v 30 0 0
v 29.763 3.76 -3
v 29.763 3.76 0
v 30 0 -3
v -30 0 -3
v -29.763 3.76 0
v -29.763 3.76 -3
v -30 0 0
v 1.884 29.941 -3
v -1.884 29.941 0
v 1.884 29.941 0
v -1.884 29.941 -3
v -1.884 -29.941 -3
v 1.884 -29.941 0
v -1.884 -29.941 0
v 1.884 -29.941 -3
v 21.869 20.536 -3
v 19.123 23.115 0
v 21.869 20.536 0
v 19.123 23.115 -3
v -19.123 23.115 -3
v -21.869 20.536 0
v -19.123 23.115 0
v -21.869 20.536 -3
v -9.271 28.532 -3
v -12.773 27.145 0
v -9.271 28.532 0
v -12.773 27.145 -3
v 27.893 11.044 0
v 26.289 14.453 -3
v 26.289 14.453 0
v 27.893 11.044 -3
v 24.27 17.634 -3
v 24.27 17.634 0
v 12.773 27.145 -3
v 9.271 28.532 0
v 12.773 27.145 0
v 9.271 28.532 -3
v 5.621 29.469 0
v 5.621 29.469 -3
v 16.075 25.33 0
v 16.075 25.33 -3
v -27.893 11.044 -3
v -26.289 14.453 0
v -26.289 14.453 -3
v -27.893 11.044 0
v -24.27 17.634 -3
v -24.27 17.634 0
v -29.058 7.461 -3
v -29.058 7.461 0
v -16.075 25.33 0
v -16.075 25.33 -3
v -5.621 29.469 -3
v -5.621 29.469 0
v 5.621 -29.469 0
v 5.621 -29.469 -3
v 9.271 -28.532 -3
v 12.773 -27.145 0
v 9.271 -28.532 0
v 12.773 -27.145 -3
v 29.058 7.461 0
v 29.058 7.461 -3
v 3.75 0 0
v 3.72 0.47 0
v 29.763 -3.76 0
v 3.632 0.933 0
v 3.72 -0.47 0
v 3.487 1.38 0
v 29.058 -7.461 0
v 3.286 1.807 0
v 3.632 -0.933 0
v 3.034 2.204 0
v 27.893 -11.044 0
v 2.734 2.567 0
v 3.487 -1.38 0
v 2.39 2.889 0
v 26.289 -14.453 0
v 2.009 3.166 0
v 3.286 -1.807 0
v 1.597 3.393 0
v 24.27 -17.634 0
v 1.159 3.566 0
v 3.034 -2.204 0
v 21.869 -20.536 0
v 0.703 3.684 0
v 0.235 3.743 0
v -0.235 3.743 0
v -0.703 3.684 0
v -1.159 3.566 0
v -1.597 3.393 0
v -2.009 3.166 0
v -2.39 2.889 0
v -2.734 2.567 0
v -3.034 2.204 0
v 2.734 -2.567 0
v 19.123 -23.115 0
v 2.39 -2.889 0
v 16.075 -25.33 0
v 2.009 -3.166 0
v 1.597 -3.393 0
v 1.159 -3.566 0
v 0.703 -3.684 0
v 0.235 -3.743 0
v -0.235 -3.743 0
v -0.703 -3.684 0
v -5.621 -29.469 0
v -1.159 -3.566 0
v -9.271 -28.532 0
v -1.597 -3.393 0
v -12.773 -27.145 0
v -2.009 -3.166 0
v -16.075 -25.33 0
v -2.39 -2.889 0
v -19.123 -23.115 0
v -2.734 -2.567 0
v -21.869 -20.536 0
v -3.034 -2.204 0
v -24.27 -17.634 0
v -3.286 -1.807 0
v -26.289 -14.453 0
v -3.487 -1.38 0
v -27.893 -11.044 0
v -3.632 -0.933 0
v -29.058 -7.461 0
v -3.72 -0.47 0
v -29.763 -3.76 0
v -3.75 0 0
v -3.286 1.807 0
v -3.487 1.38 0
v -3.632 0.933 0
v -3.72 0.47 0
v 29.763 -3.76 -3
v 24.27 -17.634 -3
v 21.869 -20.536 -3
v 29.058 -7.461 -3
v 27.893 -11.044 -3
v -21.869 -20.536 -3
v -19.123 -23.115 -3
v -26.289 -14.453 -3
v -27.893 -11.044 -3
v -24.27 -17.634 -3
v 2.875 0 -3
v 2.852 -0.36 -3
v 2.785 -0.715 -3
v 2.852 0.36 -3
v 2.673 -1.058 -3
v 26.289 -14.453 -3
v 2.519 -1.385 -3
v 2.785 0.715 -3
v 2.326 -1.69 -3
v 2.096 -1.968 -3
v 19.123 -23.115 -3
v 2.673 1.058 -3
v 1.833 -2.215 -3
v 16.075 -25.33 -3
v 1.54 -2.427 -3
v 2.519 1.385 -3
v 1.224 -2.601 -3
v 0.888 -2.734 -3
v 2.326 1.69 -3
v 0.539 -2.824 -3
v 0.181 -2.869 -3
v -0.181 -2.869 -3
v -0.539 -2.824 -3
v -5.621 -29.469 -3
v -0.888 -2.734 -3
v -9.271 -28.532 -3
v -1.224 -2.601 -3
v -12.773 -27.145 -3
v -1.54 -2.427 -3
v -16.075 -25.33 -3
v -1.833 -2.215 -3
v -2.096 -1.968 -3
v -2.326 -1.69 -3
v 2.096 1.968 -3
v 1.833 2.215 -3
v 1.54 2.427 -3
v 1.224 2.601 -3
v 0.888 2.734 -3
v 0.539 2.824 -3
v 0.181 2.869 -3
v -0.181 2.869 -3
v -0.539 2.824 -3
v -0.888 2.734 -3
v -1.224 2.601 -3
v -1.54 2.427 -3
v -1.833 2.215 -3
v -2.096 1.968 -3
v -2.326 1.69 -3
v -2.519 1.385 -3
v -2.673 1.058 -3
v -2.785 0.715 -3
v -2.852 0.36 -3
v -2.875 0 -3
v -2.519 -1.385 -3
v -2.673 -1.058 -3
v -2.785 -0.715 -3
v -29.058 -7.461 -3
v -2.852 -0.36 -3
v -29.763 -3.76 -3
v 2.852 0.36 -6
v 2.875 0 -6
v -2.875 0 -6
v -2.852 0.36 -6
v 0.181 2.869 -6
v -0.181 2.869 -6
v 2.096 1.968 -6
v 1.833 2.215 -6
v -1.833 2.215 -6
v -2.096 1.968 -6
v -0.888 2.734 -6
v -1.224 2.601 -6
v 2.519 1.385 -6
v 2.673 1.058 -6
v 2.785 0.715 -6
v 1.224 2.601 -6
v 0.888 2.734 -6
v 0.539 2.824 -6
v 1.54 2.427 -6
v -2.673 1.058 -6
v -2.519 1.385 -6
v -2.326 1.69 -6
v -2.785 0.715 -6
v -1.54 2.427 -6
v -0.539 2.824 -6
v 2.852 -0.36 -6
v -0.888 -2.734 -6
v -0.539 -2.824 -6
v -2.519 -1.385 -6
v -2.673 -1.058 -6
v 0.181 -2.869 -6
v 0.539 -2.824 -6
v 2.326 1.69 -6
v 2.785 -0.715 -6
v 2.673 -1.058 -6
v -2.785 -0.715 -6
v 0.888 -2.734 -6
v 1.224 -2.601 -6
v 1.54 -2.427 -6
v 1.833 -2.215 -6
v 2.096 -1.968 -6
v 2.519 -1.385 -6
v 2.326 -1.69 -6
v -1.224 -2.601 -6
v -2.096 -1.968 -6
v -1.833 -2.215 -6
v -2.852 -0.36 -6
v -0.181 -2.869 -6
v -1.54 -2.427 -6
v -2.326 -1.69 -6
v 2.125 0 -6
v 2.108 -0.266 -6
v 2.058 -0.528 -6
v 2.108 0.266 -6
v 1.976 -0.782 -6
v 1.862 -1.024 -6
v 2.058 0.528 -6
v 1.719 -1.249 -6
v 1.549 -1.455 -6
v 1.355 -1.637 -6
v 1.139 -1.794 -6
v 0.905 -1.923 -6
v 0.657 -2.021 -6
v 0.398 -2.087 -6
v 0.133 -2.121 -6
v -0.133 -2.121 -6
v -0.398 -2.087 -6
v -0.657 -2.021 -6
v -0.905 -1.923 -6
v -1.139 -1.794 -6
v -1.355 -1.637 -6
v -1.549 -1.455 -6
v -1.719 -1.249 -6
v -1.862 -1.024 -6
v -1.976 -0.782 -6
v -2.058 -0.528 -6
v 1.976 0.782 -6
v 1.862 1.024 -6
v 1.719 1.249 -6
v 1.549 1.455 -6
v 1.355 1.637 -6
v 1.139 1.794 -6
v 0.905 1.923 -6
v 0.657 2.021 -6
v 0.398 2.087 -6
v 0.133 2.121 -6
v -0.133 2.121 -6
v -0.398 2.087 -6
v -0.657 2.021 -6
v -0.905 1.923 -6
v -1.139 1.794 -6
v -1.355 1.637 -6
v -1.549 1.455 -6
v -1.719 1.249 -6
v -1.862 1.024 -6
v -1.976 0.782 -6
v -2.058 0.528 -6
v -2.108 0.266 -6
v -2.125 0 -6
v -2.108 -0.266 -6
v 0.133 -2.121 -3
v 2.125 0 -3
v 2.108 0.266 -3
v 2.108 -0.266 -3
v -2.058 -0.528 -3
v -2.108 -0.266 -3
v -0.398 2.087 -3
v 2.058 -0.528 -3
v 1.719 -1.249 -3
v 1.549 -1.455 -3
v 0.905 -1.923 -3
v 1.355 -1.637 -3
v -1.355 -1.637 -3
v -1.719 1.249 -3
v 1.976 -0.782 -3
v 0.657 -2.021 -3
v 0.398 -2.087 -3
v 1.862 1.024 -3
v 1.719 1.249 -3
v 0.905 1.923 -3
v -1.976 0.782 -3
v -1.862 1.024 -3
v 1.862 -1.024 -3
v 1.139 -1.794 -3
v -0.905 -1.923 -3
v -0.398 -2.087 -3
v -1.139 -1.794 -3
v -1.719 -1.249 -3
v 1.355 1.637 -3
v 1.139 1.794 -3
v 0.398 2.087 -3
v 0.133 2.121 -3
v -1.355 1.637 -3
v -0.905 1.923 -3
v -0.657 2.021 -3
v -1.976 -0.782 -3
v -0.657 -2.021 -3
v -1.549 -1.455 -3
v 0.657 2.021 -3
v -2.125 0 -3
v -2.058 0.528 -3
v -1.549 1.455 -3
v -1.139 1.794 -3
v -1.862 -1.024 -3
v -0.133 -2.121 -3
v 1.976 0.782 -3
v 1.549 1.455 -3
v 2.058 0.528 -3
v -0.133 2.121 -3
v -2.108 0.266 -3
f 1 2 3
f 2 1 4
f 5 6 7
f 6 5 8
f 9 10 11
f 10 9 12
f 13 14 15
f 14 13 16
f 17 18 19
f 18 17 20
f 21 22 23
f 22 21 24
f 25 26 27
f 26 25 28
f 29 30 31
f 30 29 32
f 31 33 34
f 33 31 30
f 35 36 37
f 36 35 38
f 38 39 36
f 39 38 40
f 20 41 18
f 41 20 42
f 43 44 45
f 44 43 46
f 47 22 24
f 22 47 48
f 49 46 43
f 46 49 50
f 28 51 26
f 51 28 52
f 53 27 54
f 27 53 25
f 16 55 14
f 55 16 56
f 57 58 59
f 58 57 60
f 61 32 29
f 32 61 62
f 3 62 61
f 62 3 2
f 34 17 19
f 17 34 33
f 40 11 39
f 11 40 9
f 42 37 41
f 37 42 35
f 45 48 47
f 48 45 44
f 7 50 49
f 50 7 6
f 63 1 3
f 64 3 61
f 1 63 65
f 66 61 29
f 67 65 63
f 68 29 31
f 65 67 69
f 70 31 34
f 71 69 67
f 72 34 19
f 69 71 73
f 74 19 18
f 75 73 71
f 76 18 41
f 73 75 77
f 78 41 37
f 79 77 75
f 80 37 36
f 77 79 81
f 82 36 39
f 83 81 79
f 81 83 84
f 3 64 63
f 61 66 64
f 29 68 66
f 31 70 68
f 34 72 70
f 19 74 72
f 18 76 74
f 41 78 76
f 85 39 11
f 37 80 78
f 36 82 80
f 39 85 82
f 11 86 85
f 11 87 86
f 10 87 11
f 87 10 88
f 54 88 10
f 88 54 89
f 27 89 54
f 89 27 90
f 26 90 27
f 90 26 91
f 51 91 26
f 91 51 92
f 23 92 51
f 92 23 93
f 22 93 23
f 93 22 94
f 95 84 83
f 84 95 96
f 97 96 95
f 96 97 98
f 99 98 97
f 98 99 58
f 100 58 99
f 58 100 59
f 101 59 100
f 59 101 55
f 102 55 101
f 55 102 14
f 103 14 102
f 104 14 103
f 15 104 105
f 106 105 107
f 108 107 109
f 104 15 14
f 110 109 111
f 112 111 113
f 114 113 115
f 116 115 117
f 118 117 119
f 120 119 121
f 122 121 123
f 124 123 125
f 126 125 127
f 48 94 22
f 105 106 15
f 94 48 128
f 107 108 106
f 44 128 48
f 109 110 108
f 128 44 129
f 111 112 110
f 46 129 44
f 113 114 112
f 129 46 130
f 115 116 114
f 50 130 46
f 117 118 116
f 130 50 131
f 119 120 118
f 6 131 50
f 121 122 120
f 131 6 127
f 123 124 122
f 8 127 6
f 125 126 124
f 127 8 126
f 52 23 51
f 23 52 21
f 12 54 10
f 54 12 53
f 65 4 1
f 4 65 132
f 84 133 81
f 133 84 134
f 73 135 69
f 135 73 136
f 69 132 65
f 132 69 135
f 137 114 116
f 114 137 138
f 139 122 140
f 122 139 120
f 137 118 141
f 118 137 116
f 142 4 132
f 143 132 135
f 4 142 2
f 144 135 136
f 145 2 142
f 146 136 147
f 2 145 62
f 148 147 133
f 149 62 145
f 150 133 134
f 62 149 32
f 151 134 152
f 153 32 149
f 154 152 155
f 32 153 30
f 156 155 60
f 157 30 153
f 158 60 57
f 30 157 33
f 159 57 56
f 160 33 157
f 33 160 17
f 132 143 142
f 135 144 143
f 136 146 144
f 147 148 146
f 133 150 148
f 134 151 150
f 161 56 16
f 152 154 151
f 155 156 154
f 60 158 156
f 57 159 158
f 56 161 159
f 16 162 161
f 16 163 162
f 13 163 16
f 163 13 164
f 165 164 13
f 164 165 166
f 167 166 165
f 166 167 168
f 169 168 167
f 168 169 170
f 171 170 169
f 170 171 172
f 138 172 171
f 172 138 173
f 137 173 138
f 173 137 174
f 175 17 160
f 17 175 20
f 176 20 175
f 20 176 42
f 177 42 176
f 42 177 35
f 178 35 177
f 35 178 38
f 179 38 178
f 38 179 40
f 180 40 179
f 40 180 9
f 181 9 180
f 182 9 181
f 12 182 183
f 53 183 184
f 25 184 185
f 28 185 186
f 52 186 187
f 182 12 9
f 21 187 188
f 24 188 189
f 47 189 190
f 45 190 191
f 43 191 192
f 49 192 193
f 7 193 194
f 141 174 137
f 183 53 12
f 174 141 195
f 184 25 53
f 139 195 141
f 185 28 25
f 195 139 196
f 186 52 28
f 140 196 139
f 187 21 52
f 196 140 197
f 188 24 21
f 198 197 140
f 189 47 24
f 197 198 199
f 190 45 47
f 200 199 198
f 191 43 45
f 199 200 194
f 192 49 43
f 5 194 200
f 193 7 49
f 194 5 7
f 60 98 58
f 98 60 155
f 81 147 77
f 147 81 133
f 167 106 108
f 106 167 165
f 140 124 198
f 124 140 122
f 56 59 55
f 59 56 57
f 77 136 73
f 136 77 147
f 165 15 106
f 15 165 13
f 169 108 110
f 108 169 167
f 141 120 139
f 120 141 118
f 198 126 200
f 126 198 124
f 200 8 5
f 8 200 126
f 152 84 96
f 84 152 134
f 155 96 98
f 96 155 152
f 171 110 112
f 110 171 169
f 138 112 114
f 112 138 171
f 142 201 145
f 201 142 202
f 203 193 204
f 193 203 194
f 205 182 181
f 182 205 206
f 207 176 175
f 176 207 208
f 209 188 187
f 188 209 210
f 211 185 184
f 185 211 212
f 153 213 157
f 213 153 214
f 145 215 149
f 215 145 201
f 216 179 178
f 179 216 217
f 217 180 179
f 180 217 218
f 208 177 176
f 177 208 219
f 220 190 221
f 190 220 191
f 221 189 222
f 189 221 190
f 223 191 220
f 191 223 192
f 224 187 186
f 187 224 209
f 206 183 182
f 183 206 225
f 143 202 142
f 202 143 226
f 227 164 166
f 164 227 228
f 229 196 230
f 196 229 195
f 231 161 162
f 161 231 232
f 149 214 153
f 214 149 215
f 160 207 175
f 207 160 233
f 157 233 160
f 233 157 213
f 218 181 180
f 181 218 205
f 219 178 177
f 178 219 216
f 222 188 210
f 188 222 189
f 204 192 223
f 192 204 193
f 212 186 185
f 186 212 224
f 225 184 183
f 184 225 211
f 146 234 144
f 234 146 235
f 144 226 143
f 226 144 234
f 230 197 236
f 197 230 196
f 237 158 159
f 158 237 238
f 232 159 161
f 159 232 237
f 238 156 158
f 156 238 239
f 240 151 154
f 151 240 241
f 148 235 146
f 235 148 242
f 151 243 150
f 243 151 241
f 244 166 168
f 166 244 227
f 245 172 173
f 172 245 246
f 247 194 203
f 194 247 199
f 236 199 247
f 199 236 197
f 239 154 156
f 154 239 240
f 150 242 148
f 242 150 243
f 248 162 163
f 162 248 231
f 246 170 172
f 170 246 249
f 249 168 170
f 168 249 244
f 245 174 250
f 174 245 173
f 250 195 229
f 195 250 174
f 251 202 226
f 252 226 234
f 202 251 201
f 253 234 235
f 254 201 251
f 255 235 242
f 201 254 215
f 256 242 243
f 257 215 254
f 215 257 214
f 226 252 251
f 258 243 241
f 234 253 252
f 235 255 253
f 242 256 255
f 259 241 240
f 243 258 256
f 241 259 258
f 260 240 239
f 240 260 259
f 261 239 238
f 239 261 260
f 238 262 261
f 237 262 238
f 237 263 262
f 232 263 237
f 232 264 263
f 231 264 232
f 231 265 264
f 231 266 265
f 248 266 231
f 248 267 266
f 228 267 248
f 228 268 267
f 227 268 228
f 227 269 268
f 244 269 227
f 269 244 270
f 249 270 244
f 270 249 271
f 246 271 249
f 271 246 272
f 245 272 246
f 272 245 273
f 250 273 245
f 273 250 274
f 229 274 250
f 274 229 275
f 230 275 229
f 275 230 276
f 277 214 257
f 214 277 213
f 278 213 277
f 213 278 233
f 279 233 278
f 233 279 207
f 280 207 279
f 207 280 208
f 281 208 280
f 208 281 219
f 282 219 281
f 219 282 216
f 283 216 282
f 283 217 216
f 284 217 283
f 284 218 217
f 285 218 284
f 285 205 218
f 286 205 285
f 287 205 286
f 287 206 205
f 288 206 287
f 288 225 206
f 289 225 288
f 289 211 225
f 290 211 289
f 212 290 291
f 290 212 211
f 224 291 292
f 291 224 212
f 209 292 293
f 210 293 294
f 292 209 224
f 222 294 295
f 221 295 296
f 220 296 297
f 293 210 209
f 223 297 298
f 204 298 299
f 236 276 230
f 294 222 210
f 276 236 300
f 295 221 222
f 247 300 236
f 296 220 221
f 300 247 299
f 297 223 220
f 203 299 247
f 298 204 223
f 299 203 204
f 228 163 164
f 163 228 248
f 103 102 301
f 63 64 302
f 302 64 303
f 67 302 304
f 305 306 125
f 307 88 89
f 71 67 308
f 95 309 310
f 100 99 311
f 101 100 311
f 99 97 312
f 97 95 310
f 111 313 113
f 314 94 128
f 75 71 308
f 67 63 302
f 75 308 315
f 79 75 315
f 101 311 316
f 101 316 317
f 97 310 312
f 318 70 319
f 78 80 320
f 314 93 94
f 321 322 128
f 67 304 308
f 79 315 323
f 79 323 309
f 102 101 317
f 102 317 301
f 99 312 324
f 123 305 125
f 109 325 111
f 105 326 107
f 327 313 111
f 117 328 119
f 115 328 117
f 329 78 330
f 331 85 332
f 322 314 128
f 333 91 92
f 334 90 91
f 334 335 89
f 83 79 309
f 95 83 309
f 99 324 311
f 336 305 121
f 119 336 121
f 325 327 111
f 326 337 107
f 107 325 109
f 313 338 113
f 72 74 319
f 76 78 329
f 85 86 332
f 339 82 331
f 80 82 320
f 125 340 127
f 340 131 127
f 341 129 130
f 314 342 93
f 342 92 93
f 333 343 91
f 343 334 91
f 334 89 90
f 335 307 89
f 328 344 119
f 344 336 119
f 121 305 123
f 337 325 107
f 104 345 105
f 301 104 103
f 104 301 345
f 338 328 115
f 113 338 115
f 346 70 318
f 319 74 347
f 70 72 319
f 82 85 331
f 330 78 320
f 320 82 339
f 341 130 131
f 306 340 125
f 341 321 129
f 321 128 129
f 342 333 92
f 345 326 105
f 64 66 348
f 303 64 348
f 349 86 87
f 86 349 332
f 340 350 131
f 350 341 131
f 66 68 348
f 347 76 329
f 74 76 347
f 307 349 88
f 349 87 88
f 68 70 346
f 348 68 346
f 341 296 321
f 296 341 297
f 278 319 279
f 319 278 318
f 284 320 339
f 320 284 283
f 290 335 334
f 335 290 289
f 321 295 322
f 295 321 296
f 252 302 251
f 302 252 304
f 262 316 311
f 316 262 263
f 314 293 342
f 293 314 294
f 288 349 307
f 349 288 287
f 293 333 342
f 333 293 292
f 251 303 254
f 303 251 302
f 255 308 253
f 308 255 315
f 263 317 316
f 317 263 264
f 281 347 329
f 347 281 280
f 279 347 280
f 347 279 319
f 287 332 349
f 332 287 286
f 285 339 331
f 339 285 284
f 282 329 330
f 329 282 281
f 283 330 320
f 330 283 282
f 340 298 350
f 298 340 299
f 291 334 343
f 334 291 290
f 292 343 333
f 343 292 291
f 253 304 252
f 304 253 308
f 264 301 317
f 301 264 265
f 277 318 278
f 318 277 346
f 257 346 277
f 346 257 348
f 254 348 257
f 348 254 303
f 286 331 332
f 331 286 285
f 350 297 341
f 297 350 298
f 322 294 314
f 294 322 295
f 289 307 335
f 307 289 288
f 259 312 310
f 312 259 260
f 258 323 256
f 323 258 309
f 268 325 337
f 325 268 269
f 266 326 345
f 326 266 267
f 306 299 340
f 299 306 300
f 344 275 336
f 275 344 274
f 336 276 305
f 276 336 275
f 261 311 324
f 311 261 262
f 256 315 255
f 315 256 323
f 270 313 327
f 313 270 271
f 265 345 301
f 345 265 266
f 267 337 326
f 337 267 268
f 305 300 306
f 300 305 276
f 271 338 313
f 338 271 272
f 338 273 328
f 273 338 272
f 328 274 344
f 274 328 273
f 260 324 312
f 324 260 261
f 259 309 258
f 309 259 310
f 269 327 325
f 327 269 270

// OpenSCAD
$fn = 50;


difference() {
	union() {
		translate(v = [0, 0, -3.0000000000]) {
			cylinder(h = 3, r = 30.0000000000);
		}
		translate(v = [0, 0, -6.0000000000]) {
			cylinder(h = 6, r = 2.8750000000);
		}
	}
	union() {
		translate(v = [0, 0, 0]) {
			rotate(a = [0, 0, 0]) {
				difference() {
					union() {
						translate(v = [0, 0, -6.0000000000]) {
							cylinder(h = 6, r = 2.0000000000);
						}
						translate(v = [0, 0, -3]) {
							cylinder(h = 3, r1 = 2.1250000000, r2 = 3.7500000000);
						}
						translate(v = [0, 0, -6.0000000000]) {
							cylinder(h = 6, r = 2.1250000000);
						}
						translate(v = [0, 0, -6.0000000000]) {
							cylinder(h = 6, r = 2.0000000000);
						}
					}
					union();
				}
			}
		}
	}
}
